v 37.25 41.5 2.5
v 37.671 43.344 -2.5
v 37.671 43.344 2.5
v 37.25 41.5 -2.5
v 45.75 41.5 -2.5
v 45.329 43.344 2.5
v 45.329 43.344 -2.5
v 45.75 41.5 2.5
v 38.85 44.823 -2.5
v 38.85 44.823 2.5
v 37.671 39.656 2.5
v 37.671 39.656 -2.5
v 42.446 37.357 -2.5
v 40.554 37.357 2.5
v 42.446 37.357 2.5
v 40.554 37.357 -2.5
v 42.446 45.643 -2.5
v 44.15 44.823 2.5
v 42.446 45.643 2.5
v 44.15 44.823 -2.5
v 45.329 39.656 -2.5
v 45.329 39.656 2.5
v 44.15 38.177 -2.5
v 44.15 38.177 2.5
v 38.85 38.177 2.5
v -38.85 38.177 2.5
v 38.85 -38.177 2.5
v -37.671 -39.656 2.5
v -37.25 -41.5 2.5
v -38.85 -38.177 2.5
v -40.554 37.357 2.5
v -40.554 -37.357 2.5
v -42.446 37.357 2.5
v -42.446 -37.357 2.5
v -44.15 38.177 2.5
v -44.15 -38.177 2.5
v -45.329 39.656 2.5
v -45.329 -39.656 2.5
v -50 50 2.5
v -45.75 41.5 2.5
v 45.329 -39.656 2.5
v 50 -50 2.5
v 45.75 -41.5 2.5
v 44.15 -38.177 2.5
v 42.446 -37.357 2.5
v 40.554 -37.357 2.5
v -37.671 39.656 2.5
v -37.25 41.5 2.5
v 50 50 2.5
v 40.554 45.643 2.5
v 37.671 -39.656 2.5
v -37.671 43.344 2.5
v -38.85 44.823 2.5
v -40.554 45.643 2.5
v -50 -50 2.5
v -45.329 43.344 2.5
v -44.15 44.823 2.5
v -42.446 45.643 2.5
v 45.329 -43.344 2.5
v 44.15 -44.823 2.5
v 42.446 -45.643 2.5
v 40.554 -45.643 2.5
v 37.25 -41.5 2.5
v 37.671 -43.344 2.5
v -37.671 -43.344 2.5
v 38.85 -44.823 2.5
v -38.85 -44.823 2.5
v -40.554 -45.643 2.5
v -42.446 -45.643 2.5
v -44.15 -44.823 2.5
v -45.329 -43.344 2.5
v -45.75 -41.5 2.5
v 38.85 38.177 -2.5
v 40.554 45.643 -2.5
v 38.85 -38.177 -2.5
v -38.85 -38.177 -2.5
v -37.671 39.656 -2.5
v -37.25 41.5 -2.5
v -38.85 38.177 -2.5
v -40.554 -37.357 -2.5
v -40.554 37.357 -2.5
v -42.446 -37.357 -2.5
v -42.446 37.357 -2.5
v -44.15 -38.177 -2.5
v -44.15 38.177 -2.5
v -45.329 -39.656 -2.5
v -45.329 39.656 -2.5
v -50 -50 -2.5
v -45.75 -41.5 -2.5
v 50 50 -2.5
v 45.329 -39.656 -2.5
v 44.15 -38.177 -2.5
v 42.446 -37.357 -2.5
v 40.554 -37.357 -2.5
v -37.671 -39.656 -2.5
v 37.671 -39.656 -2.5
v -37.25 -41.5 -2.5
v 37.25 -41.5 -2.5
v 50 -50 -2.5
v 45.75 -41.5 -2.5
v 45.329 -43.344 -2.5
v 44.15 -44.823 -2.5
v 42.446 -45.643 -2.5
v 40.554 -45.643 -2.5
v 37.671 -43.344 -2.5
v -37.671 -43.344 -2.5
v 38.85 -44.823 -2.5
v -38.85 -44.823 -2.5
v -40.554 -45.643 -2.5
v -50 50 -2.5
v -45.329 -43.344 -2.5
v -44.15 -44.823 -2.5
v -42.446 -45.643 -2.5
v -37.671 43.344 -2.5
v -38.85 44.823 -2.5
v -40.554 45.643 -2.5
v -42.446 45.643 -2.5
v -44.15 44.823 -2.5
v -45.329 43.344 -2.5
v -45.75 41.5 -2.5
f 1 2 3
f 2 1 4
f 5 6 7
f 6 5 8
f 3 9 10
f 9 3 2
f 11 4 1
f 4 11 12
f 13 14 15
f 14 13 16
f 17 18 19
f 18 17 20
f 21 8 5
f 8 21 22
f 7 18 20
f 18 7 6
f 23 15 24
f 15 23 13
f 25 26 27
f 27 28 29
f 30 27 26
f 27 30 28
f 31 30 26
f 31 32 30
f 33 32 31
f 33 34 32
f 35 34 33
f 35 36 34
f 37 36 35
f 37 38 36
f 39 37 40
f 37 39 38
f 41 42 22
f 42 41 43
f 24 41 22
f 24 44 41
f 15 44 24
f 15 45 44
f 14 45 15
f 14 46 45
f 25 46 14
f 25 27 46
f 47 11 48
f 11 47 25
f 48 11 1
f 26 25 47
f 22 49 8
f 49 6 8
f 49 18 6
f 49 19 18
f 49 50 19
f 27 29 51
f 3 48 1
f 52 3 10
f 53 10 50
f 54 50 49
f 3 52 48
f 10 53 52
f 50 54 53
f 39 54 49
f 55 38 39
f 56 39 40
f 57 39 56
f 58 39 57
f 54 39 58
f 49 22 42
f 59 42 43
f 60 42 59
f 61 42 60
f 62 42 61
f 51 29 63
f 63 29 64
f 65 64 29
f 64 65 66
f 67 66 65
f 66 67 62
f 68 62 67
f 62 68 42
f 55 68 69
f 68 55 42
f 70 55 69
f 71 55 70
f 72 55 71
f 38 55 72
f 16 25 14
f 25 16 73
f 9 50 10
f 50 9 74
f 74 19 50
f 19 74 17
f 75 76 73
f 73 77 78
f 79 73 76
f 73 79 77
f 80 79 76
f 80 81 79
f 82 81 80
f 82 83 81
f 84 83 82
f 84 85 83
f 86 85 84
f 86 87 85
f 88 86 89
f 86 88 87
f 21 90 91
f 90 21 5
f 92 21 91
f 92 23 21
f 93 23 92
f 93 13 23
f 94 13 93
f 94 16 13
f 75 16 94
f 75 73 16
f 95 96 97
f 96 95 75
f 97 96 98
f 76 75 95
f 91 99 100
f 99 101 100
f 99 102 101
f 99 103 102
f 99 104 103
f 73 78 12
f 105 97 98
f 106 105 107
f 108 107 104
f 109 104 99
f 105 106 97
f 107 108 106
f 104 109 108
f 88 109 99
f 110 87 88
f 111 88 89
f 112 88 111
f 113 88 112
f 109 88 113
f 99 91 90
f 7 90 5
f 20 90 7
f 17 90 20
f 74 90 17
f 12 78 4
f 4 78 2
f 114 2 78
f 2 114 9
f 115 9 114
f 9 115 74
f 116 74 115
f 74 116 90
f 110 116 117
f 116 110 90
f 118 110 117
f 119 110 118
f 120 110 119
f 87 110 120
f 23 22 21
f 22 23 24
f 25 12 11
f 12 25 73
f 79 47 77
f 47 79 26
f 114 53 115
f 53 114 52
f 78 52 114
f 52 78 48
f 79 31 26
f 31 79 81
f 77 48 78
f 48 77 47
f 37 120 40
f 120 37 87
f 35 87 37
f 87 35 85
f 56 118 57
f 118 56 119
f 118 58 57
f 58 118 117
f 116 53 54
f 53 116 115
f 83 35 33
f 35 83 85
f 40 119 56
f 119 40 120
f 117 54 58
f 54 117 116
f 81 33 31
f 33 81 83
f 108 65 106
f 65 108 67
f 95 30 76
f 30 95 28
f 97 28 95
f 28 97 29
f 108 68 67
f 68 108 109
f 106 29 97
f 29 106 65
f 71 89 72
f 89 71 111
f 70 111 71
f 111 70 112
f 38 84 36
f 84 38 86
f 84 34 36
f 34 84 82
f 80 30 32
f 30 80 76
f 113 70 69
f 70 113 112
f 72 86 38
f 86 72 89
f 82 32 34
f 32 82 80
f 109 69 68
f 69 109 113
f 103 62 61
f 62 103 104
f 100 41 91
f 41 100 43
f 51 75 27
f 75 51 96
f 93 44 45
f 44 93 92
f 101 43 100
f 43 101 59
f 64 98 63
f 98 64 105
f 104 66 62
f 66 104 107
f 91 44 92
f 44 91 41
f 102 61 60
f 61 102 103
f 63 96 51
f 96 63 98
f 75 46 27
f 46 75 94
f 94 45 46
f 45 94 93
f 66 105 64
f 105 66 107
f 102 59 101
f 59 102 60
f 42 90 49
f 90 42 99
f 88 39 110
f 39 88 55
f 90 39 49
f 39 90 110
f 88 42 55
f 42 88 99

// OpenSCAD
// Generated by SolidPython 1.1.3 on 2024-03-13 11:53:13


difference() {
	cube(center = true, size = [100, 100, 5]);
	union() {
		translate(v = [41.5000000000, 41.5000000000]) {
			cylinder(center = true, h = 5, r = 4.2500000000);
		}
		translate(v = [-41.5000000000, 41.5000000000]) {
			cylinder(center = true, h = 5, r = 4.2500000000);
		}
		translate(v = [-41.5000000000, -41.5000000000]) {
			cylinder(center = true, h = 5, r = 4.2500000000);
		}
		translate(v = [41.5000000000, -41.5000000000]) {
			cylinder(center = true, h = 5, r = 4.2500000000);
		}
	}
}
/***********************************************
*********      SolidPython code:      **********
************************************************
 
import solid
import numpy as np
import numbers
import pudb
from solid.utils import *
import viewscad
import subprocess
import os
import os.path as osp
import math
import sys

chamfer_extrude=solid.import_scad("./chamfer_extrude.scad")
chamfer_extrude=chamfer_extrude.chamfer_extrude
r = viewscad.Renderer(width=800, height=800)

def debug(model,f_name,path="/home/ts/code/projects/mfd/designs/debug"):
    solid.scad_render_to_file(model,osp.join(path,f_name)+".scad")
#generate position list of wells using offset from center
wells_pos_from_center_4 = lambda offset: [[-offset,offset],
                                        [offset, offset],
                                        [-offset, -offset],
                                        [offset, -offset]]
wells_pos_from_center_2 = lambda offset: [[offset,0],
                                        [-offset,0]]

def make_well(dims,shape=None,height=None,dxf=False):
    def circle_cylinder():
        if dxf or (height is None):
            well = solid.circle(r=dims, segments=64)
        else:
            well = solid.cylinder(r=dims, h=height, segments=64, center = True)
        return well
    if dims is None:
        sys.exit("radius needs to be a number")
    if isinstance(dims, numbers.Number):
        well =circle_cylinder()
    elif len(dims)==1:
        if isinstance(dims[1], numbers.Number):
            well =circle_cylinder()
        else:
            sys.exit("radius needs to be a number")
    elif len(dims)==2:
        well = solid.square(dims,center = True)
    elif len(dims)==3:
        well = solid.cube(dims, center = True)
    return well

def wells_top_bottom(center_gap,device_dims=None,shape=None,height=None, positions = None, dxf = False,well_shape=None):
    if well_shape == None:
        well_shape = make_well(device_dims,shape=shape,height=height,dxf=dxf)
    wells = []
    if positions is None:
        offset = radius+radius/2.0
        positions = wells_pos_from_center_2(offset)
    if dxf or (height is None):
        height = 0
    for position in positions:
        if dxf:
            wells.append(solid.translate([position[0],position[1]])(well_shape))
        else:
            wells.append(solid.translate([position[0],position[1],height/2.0])(well_shape))
    return  union()(*wells)

#place wells in four corners 
def four_corner(radius,height=None, positions = None, dxf = False):
    #if well pos not specified set
    #to equally spaced by half radius
    if positions is None:
        offset = radius+radius/2.0
        positions = wells_pos_from_center_4(offset)
    if dxf or (height is None):
        height = 0
    #make wells at positions with specified radius and height
    wells = []
    for position in positions:
        #make circle if making dxf
        if dxf:
            well_shape = solid.circle(r=radius, segments=64)
            well_shape = solid.translate([position[0],position[1]])(well_shape)
        #if stl make cylinder
        else:
            well_shape = solid.cylinder(r=radius, h=height, segments=64, center = True)
            well_shape = solid.translate([position[0],position[1],height/2.0])(well_shape)
        wells.append(well_shape)
    return  union()(*wells)

#generate channels 
def make_channels(length,width,height=0,num_chans=1,max_chans=None,spacing=None, dxf = False,
                  rotate_channels=False):
    if dxf or (height is None):
        height = 0
    #if channel gap not defined, is equal to
    if spacing is None: spacing = width
    #calculate number of channels if fitting max num within given width
    if not max_chans is None:
        import math
        num_chans = math.floor((max_chans-spacing)/(width+spacing))
    #get total width of channel section  
    total_width = (width*num_chans)+(spacing*(num_chans-1))

    #make template channel
    #if rotate_channels: width, length = length, width
    if dxf:
        channel_t = solid.square([length,width],center = True)
    else:
        channel_t = solid.cube([length,width,height], center = True)

    #if number channels is even, offset the first channel to center its gap
    if num_chans % 2 == 0: centering = -(width/2.0+spacing/2.0)
    else: centering = 0
    #move template channel up to align bottom at z = 0 
    #and offset center if necessary
    if dxf:
        channel_t = solid.translate([0,centering])(channel_t)
    else:
        channel_t = solid.translate([0,centering,height/2.0])(channel_t)

    #if rotate_channels: length,width = width,length
    #start making the channels
    channels = []
    for i in range(num_chans):
        #if i=0 there is no translation
        #if i=1, we make the first channel adjacent to second
        direction = i

        #if i>=1, we add channels alternating left and right
        if i >= 1:
            direction = -(i/2.0)
            if i % 2 == 1: direction = (-direction)+0.5
                
        #make channel at right position and add it to channel list
        translation_coords = [0,direction*(width+spacing)]
        #if rotate_channels: translation_coords = [direction*(width+spacing),0]
        if dxf:
            channel = solid.translate(translation_coords)(channel_t)
        else:
            channel = solid.translate([*translation_coords,0])(channel_t)
        channels.append(channel)
    
    #group all channels as one object
    channels = union()(*channels)
    #compute the x,y,z dimensions in order to pass as arguments 
    #for construction of other parts of device (such as the chambers)
    measurements = {'x':(length/2.0,-length/2.0),
                    'y':(total_width/2.0,-total_width/2.0)}
    if not dxf:
        measurements['z'] = (height,0)
    if rotate_channels:
        channels = solid.rotate(90)(channels)
        measurements['x'],measurements['y']=measurements['y'],measurements['x']
    return channels,measurements

def make_chambers(msrs,height=None,extra=0,len_until=None,width=None, dxf = False):
    #computes x,y,z length
    total = lambda x : abs(x[0]) + abs(x[1])
    
    #if specific height if specified
    #otherwise use same height as channels
    if dxf:
        pass
    elif not height is None:
        msrs['z'] = (height,0)
    else:
        msrs['z'] = (0,0)
        
    #make copy of measurements from channels to modify chamber dimensions 
    #and add length to chambers as specified
    chamber_dims = msrs.copy()
    #calculate length of chamber to reach specified offset
    if not len_until is None:
        chamber_len = len_until-(msrs['x'][0])
    #or add specified length to channel length (if not specified, adds 0)
    else:
        chamber_len = msrs['x'][0]+extra
    #set the chamber length based 
    chamber_dims['x'] = (chamber_len/2.0,-(chamber_len/2.0))
    #compute final dimensions of chamber
    if not width is None:
        chamber_dims['y'] = (width/2.0,-width/2.0)
    chamber_dims = [total(size) for size in chamber_dims.values()]
        
    #calculate chamber translation offset to place adjacent to channels
    chamber_trslt = msrs['x'][0]+(chamber_len/2.0)
    #compute chamber translation coordinates to align with channels
    #x = 1 moves chamber above channels
    #x = -1 moves chamber below channels
    if dxf:
        trslt = lambda x : [x*(chamber_trslt),0]
    else:
        trslt = lambda x : [x*(chamber_trslt),0,msrs['z'][0]/2.0]
    
    #function to make chamber at top or at bottom 
    if dxf:
        move = lambda x : solid.translate(trslt(x))(solid.square(chamber_dims, center = True) )
    else:
        move = lambda x : solid.translate(trslt(x))(solid.cube(chamber_dims,center = True))
    #make top and bottom chambers and return them as grouped
    top = move(1)
    bottom = move(-1)
    #chambers=solid.rotate(90)(solid.union()(top,bottom))
    chambers=(solid.union()(top,bottom))

    return chambers

#create alignment features 
def alignment_features(unit,dims,grid_size, mask_size = None, alignment = "hollow", units_from_center = (2.5,2.5), corner_len=None):
    width = grid_size[0]*dims[0]
    length = grid_size[1]*dims[1]
    if mask_size is None and corner_len is None:
        corner_len = (dims[0] + dims[1]) /2 / 8
    corner = lambda thickness_div : solid.union()( solid.square([corner_len,corner_len/thickness_div],center=False), solid.square([corner_len/thickness_div,corner_len],center=False) )
    
    def make_full(thickness_div):
        thickness = corner_len/thickness_div
        tr = solid.translate([0, 0, 0 ])(solid.rotate(180)(corner(thickness_div)))
        tr = solid.translate([thickness/2,thickness/2,0])(tr)
        bl = solid.translate([0, 0, 0 ])(solid.rotate(0)(corner(thickness_div)))
        bl = solid.translate([-thickness/2,-thickness/2,0])(bl)
        return solid.union()(tr,bl)
    
    def make_hollow(thickness_div):
        thickness = corner_len/(thickness_div/2)
        inner = make_full(thickness_div)
        outer = make_full(thickness_div/2)
        hollow = outer - inner 
        return hollow
    
    center = (width /2 , length/2)
    mask_pos = lambda x,y : (center[0] + x*(float(units_from_center[0])*dims[0]), center[1] + y*(float(units_from_center[1])*dims[1]))
    positions = []
    positions.append(mask_pos(1,0))
    positions.append(mask_pos(0,1))
    positions.append(mask_pos(-1,0))
    positions.append(mask_pos(0,-1))
    make_mask = lambda mtype : make_hollow(8) if mtype == "hollow" else make_full(8)
    masks = [ solid.translate([*position,0])(make_mask(alignment)) for position in positions]
    
    solid.scad_render_to_file(solid.union()(*masks),"./designs/open_chamber/masks.scad")
    #return unit - solid.union()(*masks)
    return solid.union()(*masks,unit)

def create_outline(thickness, array, dims, grid_size,):
    width = grid_size[0]*dims[0] + thickness *2
    length = grid_size[1]*dims[1] + thickness *2
    outer = solid.translate([-thickness, -thickness,0])(solid.square([width, length]))
    return outer-array

def create_wall(wall_thickness, outline_thickness, dims, grid_size, wall_height = 2000, dxf = False):
    inner_width = grid_size[0]*dims[0] + outline_thickness *2
    inner_length = grid_size[1]*dims[1] + outline_thickness *2
    outer_width = inner_width + wall_thickness * 2
    outer_length = inner_length + wall_thickness * 2
    outer_pos_x = -outline_thickness-wall_thickness
    outer_pos_y = -outline_thickness-wall_thickness
    inner_pos_x = -outline_thickness
    inner_pos_y = -outline_thickness
    if dxf:
        inner_wall = solid.translate([inner_pos_x,
                                      inner_pos_y,
                                      0])(solid.square([inner_width, inner_length]))
        outer_wall = solid.translate([outer_pos_x,
                                      outer_pos_y,
                                      0])(solid.square([outer_width, outer_length]))

        return outer_wall-inner_wall
    else:
        inner_wall = solid.translate([inner_pos_x,
                                      inner_pos_y,
                                      0])(solid.cube([inner_width, inner_length,wall_height]))
        outer_wall = solid.translate([outer_pos_x,
                                      outer_pos_y,
                                      0])(solid.cube([outer_width, outer_length,wall_height]))

        return outer_wall-inner_wall, {'wall_height': wall_height,
                                       'wall_thickness': wall_thickness,
                                       'inner_width':inner_width,
                                       'inner_length': inner_length,
                                       'outer_width': outer_width,
                                       'outer_length': outer_length,
                                       'outer_pos_x' : outer_pos_x,
                                       'outer_pos_y' : outer_pos_y,
                                       'inner_pos_x' : inner_pos_x,
                                       'inner_pos_y' : inner_pos_y}

def create_thicker_wall(wall_thickness, outer_wall_offset, wall_dims, dims, grid_size, height_start = .2, height_end=2, dxf = False):
    addon_wall,thicker_wall_dims = create_wall(wall_thickness, outer_wall_offset, dims, grid_size, wall_height=height_end-height_start, dxf = False)
    addon_wall = solid.translate([0,0,height_start])(addon_wall)

    thicker_wall_dims['wall_height'] = height_end
    thicker_wall_dims['wall_thickness'] = wall_dims['wall_thickness'] + wall_thickness
    return addon_wall, thicker_wall_dims
 
def add_lock_to_wall(wall,wall_dims,y_offset = 0,cut_ratio=0.7,L_length=3, gap_ratio=0.05, axis="x",width_ratio=1/2):
    # Makes L shape
    def make_L(max_length,length_thickness,max_width,width_thickness,height,y_offset):
        length = solid.cube([max_length,length_thickness,height])
        width = solid.cube([width_thickness,max_width,height])
        width = solid.translate([max_length-(width_thickness),0,0])(width)
        L = solid.union()(width,length)
        debug(L,"L")
        if axis == "x":
            L = solid.rotate(-90)(L)
            L = solid.translate([0,max_length,0])(L)
        else:
            L = solid.rotate(-180)(L)
            L = solid.translate([max_length,max_width,0])(L)
        return solid.translate([0,0,y_offset])(L)
    
    lock_length = L_length
    lock_width = wall_dims['wall_thickness']*width_ratio
    lock_length_thickness = lock_width/2
    lock_width_thickness = lock_width/2
    L_lock = make_L(lock_length,lock_length_thickness,lock_width,lock_width_thickness, wall_dims['wall_height']-y_offset, y_offset)
    
    margin_space = lock_length - lock_length*(1-gap_ratio)
    key_length = lock_length-margin_space
    key_length_thickness = lock_length_thickness-(margin_space*2)
    key_width = lock_width-(margin_space*2)
    key_width_thickness = lock_width_thickness-(margin_space*2)
    L_key = make_L(key_length,key_length_thickness,key_width,key_width_thickness, wall_dims['wall_height']-y_offset, y_offset)
    L_key = solid.translate([margin_space,margin_space,0])(L_key)
    L = solid.union()(L_lock,L_key)
    debug(L,"L")
    
    #Make cube to be used as negative to split frame in a half
    #Can choose if making left or right negative, specify ratio of split
    def make_negative(right,cut_ratio):
        if axis == "x":
            if right:
                length = wall_dims['outer_length']*(1-cut_ratio)
                pos_x = wall_dims['outer_pos_x']+(wall_dims['outer_length']*cut_ratio)
            else:
                length = wall_dims['outer_length']*(cut_ratio)
                pos_x = wall_dims['outer_pos_x'] 
            negative = solid.cube([wall_dims['outer_width'],length, wall_dims['wall_height']])
            negative = solid.translate([wall_dims['outer_pos_y'],pos_x,0])(negative)
        else:
            if right:
                length = wall_dims['outer_width']*(1-cut_ratio)
                pos_x = wall_dims['outer_pos_y']+(wall_dims['outer_width']*cut_ratio)
            else:
                length = wall_dims['outer_width']*(cut_ratio)
                pos_x = wall_dims['outer_pos_y'] 
            negative = solid.cube([length,wall_dims['outer_length'], wall_dims['wall_height']])
            negative = solid.translate([pos_x,wall_dims['outer_pos_x'],0])(negative)
        return negative, pos_x, length 
                      
    #Make negatives
    negative_right, right_half_pos_x, right_half_length = make_negative(True,cut_ratio)
    negative_left, left_half_pos_x, right_half_length = make_negative(False,cut_ratio)
    #Make halves
    left_half = solid.difference()(wall,negative_right)
    right_half = solid.difference()(wall,negative_left)
    def place_L(L, L_length,L_width):
        #Place L on top wall       
        offset_to_center = (wall_dims['wall_thickness']-L_width)/2
        if axis == "x":
            y_pos_top = (wall_dims['outer_pos_y'] +
                    wall_dims['outer_width'] - 
                    L_width - offset_to_center)
            top_L = solid.translate([y_pos_top,
                                     right_half_pos_x-(L_length),
                                     0])(L)
            #Place L on bottom wall       
            y_pos_bottom = wall_dims['outer_pos_y']+offset_to_center
            bottom_L = solid.translate([y_pos_bottom,
                                        right_half_pos_x-L_length,
                                        0])(L)
        else:
            y_pos_top = (wall_dims['outer_pos_x'] +
                    wall_dims['outer_length'] -
                    (L_width+offset_to_center))
            top_L = solid.translate([right_half_pos_x-L_length,
                                     y_pos_top,
                                     0])(L)
            #Place L on bottom wall       
            y_pos_bottom = wall_dims['outer_pos_y']+offset_to_center
            bottom_L = solid.translate([right_half_pos_x-L_length,
                                        y_pos_bottom,
                                        0])(L)
        return bottom_L, top_L
    #Make complimentary L pieces through union and differences
    #Make Lock
    bottom_L_lock, top_L_lock = place_L(L_lock,L_length,lock_width)
    left_half = solid.difference()(left_half,bottom_L_lock)
    left_half = solid.difference()(left_half,top_L_lock)
    #Make Key
    bottom_L_key, top_L_key = place_L(L_key,L_length,lock_width)
    right_half = solid.union()(right_half,bottom_L_key)
    right_half = solid.union()(right_half,top_L_key)
    return left_half, right_half


#build a row x col grid of containment units
def make_unit_array(unit,dims,grid_size, dxf = False, alignment = None, mask_size = None,
                    units_from_center = None,alignment_offset=None, alignment_mark_size=1):
    units = []
    for col in range(grid_size[1]):
        for row in range(grid_size[0]):
            if dxf:
                units.append(solid.translate([row*dims[0],col*dims[1]])(unit))
            else:
                units.append(solid.translate([row*dims[0],col*dims[1],dims[2]/2.0])(unit))
    array = solid.union()(*units)
    if (not alignment is None) and dxf:
        if not alignment_offset is None:
            array = solid.translate([alignment_offset[0],alignment_offset[1]])(array)
        array = alignment_features(array,dims, grid_size, alignment = alignment, mask_size = None, units_from_center = units_from_center,corner_len=alignment_mark_size)
        if not alignment_offset is None:
            array = solid.translate([-alignment_offset[0],-alignment_offset[1]])(array)
    return array


def make_taylor(wells_pos = wells_pos_from_center_4(2.25), well_rad = 1.5 ,
                well_height = 2, chan_w = 0.01, chan_l = 1, chan_h = 0.010 ,
                chan_gap = 0.040, max_chans = None,num_chans=100, chamber_height  = 0.100,
                columns = 1, rows = 1, chamber_len_until=2.25, add_channels = True, add_wells = True, 
                add_chambers = True, save_path = "./", alignment = None, units_from_center = 2,
                mask_size = None, render_stl = False, outline_thickness = 0.050, dxf = True,
                wall_height = 15, wall_thickness = 0.95, casing_x=9, casing_y=9, casing_z=0,rotate_units=0):

    dims = [casing_x, casing_y, casing_z]
    wells = four_corner(well_rad,well_height, dxf = dxf, positions = wells_pos)
    debug(wells,"wells")
    channels, msrs = make_channels(chan_l,chan_w,chan_h,dxf=dxf, spacing = chan_gap, max_chans=max_chans,num_chans=num_chans)
    debug(channels,"channels")
    chambers = make_chambers(msrs,dxf = dxf, height=chamber_height,len_until=chamber_len_until)
    debug(chambers,"chambers")

    #add together and render
    device_parts = []
    if add_channels:
        device_parts.append(channels)
    if add_wells:
        device_parts.append(wells)
    if add_chambers:
        device_parts.append(chambers)
    device=union()(*device_parts)
    device = rotate(rotate_units)(device)

    device=solid.translate([dims[0]/2.0,dims[1]/2.0,0])(device)
    channels = rotate(rotate_units)(channels)
    channels=solid.translate([dims[0]/2,dims[1]/2,0])(channels)
    chambers_wells = union()(wells,chambers)
    chambers_wells = rotate(rotate_units)(chambers_wells)
    chambers_wells=solid.translate([dims[0]/2,dims[1]/2,0])(chambers_wells)

    file_name = str(rows)+'x'+str(columns)+'_units_'
    grid_size = [rows,columns]

    if alignment:
        alignment="full"
    device = make_unit_array(device,dims,grid_size, dxf=dxf, alignment = alignment,
                                 units_from_center = units_from_center)
    channels = make_unit_array(channels,dims,grid_size, dxf=dxf, alignment = alignment,
                                 units_from_center = units_from_center)
    if alignment=="full":
        alignment="hollow"

    chambers_wells = make_unit_array(chambers_wells,dims,grid_size, dxf=dxf, alignment = alignment,
                                 units_from_center =units_from_center)

    def save_model(model,prefix):
        model_fname = os.path.abspath(save_path+prefix+"_"+file_name+".scad")
        solid.scad_render_to_file(model,model_fname)
        return model_fname

    wells_fname = save_model(wells,"wells")
    channels_fname = save_model(channels,"channels")
    device_fname = save_model(device,"device")
    chambers_wells_fname = save_model(chambers_wells,"chambers_wells")
    return (chambers_wells,chambers_wells_fname), (channels,channels_fname), (device,device_fname)

def make_device(design='open',rows=8,columns=6,wells_pos = 4.5,well_offset=3.2, well_rad=3.2,well_height=0.1,
                chan_l=1,chan_w=0.01,chan_h=0.01,chan_gap=0.015,num_chans=101,dxf=True,save_path="./designs/open_chamber/",
                casing_x=9.0,casing_y=18.0,casing_z=0,rotate_units=90,units_from_center=(3,1),chamber_len_until=4.5,
                chamber_width=None,alignment=True, add_wells=True, add_channels=True,add_chambers=True,well_shape=None):

    dims = [casing_x, casing_y, casing_z]
    if design == "open":
        wells_pos=wells_pos_from_center_2(wells_pos)
        wells = wells_top_bottom(well_offset*2,device_dims=well_rad,height=well_height, dxf = dxf, positions = wells_pos,well_shape=well_shape)
    elif design == "closed":
        wells_pos=wells_pos_from_center_4(wells_pos)
        debug(wells,"wells")
        wells = four_corner(well_offset,well_height,device_dims=well_rad, dxf = dxf, positions = wells_pos)
    else:
        print(design+" is not a valid design.\n Choose valid design: 'open' or 'closed'")
        exit()
    wells = rotate(rotate_units)(wells)
    wells=solid.translate([dims[0]/2,dims[1]/2,0])(wells)
    debug(wells,"wells")

    channels, msrs = make_channels(chan_l,chan_w,chan_h,dxf=dxf, spacing = chan_gap, num_chans=num_chans,rotate_channels=False)
    channels = rotate(rotate_units)(channels)
    channels=solid.translate([dims[0]/2,dims[1]/2,0])(channels)

    chambers=make_chambers(msrs,height=None,extra=0,len_until=chamber_len_until, width=chamber_width,dxf = dxf)
    chambers = rotate(rotate_units)(chambers)
    chambers=solid.translate([dims[0]/2,dims[1]/2,0])(chambers)

    device_parts = []
    if add_channels:
        device_parts.append(channels)
    if add_wells:
        device_parts.append(wells)
    if add_chambers:
        device_parts.append(chambers)
    device = union()(*device_parts)
    #device = rotate(rotate_units)(device)
    #device=solid.translate([dims[0]/2.0,dims[1]/2.0,0])(device)

    chambers_wells = []
    if add_chambers:
        chambers_wells.append(chambers)
    if add_wells:
        chambers_wells.append(wells)
    chambers_wells = union()(*chambers_wells)
    #chambers_wells = union()(wells,chambers)
    #chambers_wells = rotate(rotate_units)(chambers_wells)
    #chambers_wells=solid.translate([dims[0]/2,dims[1]/2,0])(chambers_wells)

    file_name = str(rows)+'x'+str(columns)+'_units_'

    grid_size = [rows,columns]
    if alignment:
        alignment="full"
    device = make_unit_array(device,dims,grid_size, dxf=dxf, alignment = alignment,
                                 units_from_center = units_from_center)
    channels = make_unit_array(channels,dims,grid_size, dxf=dxf, alignment = alignment,
                                 units_from_center = units_from_center)
    if alignment=="full":
        alignment="hollow"

    chambers_wells = make_unit_array(chambers_wells,dims,grid_size, dxf=dxf, alignment = alignment,
                                 units_from_center =units_from_center)

    def save_model(model,prefix):
        model_fname = os.path.abspath(save_path+prefix+"_"+file_name+".scad")
        solid.scad_render_to_file(model,model_fname)
        return model_fname

    wells_fname = save_model(wells,"wells")
    channels_fname = save_model(channels,"channels")
    device_fname = save_model(device,"device")
    chambers_wells_fname = save_model(chambers_wells,"chambers_wells")
    return (chambers_wells,chambers_wells_fname), (channels,channels_fname), (device,device_fname)


def make_open_chamber(rows=8,columns=6,wells_pos = wells_pos_from_center_2(4.5), well_rad=3.2,well_height=0.1,
                      chan_l=1,chan_w=0.01,chan_h=0.01,chan_gap=0.015,num_chans=101,dxf=True,save_path="./designs/open_chamber/",
                      casing_x=9.0,casing_y=18.0,casing_z=0,rotate_units=90,units_from_center=(3,1),chamber_len_until=4.5,
                      chamber_width=None,alignment=True, add_wells=True, add_channels=True,add_chambers=True,well_shape=None):

    dims = [casing_x, casing_y, casing_z]
    wells = wells_top_bottom(well_rad,height=well_height, dxf = dxf, positions = wells_pos, well_shape=well_shape)
    channels, msrs = make_channels(chan_l,chan_w,chan_h,dxf=dxf, spacing = chan_gap, num_chans=num_chans,rotate_channels=False)
    chambers=make_chambers(msrs,height=None,extra=0,len_until=chamber_len_until, width=chamber_width,dxf = dxf)
    debug(chambers,"chambers")
    device_parts = []
    if add_channels:
        device_parts.append(channels)
    if add_wells:
        device_parts.append(wells)
    if add_chambers:
        device_parts.append(chambers)
    device = union()(*device_parts)
    device = rotate(rotate_units)(device)
    device=solid.translate([dims[0]/2.0,dims[1]/2.0,0])(device)
    channels = rotate(rotate_units)(channels)
    channels=solid.translate([dims[0]/2,dims[1]/2,0])(channels)
    chambers_wells = union()(wells,chambers)
    chambers_wells = rotate(rotate_units)(chambers_wells)
    chambers_wells=solid.translate([dims[0]/2,dims[1]/2,0])(chambers_wells)

    file_name = str(rows)+'x'+str(columns)+'_units_'

    grid_size = [rows,columns]
    if alignment:
        alignment="full"
    device = make_unit_array(device,dims,grid_size, dxf=dxf, alignment = alignment,
                                 units_from_center = units_from_center)
    channels = make_unit_array(channels,dims,grid_size, dxf=dxf, alignment = alignment,
                                 units_from_center = units_from_center)
    if alignment=="full":
        alignment="hollow"

    chambers_wells = make_unit_array(chambers_wells,dims,grid_size, dxf=dxf, alignment = alignment,
                                 units_from_center =units_from_center)

    def save_model(model,prefix):
        model_fname = os.path.abspath(save_path+prefix+"_"+file_name+".scad")
        solid.scad_render_to_file(model,model_fname)
        return model_fname

    wells_fname = save_model(wells,"wells")
    channels_fname = save_model(channels,"channels")
    device_fname = save_model(device,"device")
    chambers_wells_fname = save_model(chambers_wells,"chambers_wells")
    return (chambers_wells,chambers_wells_fname), (channels,channels_fname), (device,device_fname)

def to_dxf(scad_path):
    dxf_path = scad_path.replace(".scad",".dxf")
    subprocess.call(["openscad", "-o", dxf_path, scad_path])
    import ezdxf
    temp_dxf = ezdxf.readfile(dxf_path)
    temp_dxf.saveas(dxf_path)

#def make_walls(diameter,thickness,grid_size,dims,height=20,segments=256,make_inner=True):
#    wafer_wall_out = solid.cylinder(r=diameter/2,h=height, segments=segments)
#    wafer_wall_in = solid.cylinder(r=(diameter/2-thickness),h=height, segments=segments)
#    wafer_wall = solid.difference()(wafer_wall_out,wafer_wall_in)
#    wafer_wall = solid.translate([grid_size[1]*dims[1]/2.0,grid_size[0]*dims[0]/2.0])(wafer_wall)
#
#    vertical_wall_length = grid_size[1]*dims[1]
#    horizontal_wall_length = grid_size[0]*dims[0]
#    vertical_wall = solid.cube([vertical_wall_length,thickness,height],center = True)
#    vertical_wall = solid.translate([vertical_wall_length/2,0,height/2])(vertical_wall)
#    horizontal_wall = solid.cube([thickness,horizontal_wall_length,height],center = True)
#    horizontal_wall = solid.translate([0,vertical_wall_length/2,height/2])(horizontal_wall)
#    walls = []
#    walls.append(horizontal_wall)
#    walls.append(vertical_wall)
#    for col in range(grid_size[1]):
#        if col == grid_size[1]-1: 
#            walls.append(solid.translate([0,(col+1)*dims[1]])(vertical_wall))
#        elif col > 0 and col < grid_size[1]-1 and make_inner==True:
#            walls.append(solid.translate([0,(col+1)*dims[1]])(vertical_wall))
#    for row in range(grid_size[0]):
#        if row == grid_size[0]-1: 
#            walls.append(solid.translate([(row+1)*dims[0],0])(horizontal_wall))
#        elif row > 0 and row < grid_size[0]-1 and make_inner==True:
#            walls.append(solid.translate([(row+1)*dims[0],0])(horizontal_wall))
#    walls = union()(*walls)
#    wafer_walls = union()(walls,wafer_wall)
#    return walls,wafer_wall,wafer_walls

def make_walls(diameter,thickness,grid_size,dims,height=20,segments=256,make_inner=True,padx=0,pady=0):
    wafer_wall_out = solid.cylinder(r=diameter/2,h=height, segments=segments)
    wafer_wall_in = solid.cylinder(r=(diameter/2-thickness),h=height, segments=segments)
    wafer_wall = solid.difference()(wafer_wall_out,wafer_wall_in)
    wafer_wall = solid.translate([grid_size[1]*dims[1]/2.0,grid_size[0]*dims[0]/2.0])(wafer_wall)

    vertical_wall_length = grid_size[0]*dims[0]+padx
    horizontal_wall_length = grid_size[1]*dims[1]+pady
    vertical_wall = solid.cube([vertical_wall_length,thickness,height],center = True)
    vertical_wall = solid.translate([vertical_wall_length/2-pady/2,-padx/2,height/2])(vertical_wall)
    horizontal_wall = solid.cube([thickness,horizontal_wall_length,height],center = True)
    horizontal_wall = solid.translate([-pady/2,horizontal_wall_length/2-padx/2,height/2])(horizontal_wall)
    walls = []
    walls.append(horizontal_wall)
    walls.append(vertical_wall)
    for col in range(grid_size[1]):
        if col == grid_size[1]-1: 
            walls.append(solid.translate([0,(col+1)*dims[1]+pady])(vertical_wall))
        elif col > 0 and col < grid_size[1]-1 and make_inner==True:
            walls.append(solid.translate([0,(col+1)*dims[1]])(vertical_wall))
    for row in range(grid_size[0]):
        if row == grid_size[0]-1: 
            walls.append(solid.translate([(row+1)*dims[0]+padx,0])(horizontal_wall))
        elif row > 0 and row < grid_size[0]-1 and make_inner==True:
            walls.append(solid.translate([(row+1)*dims[0],0])(horizontal_wall))
    walls = union()(*walls)
    wafer_walls = union()(walls,wafer_wall)
    return walls,wafer_wall,wafer_walls

def save_model(model,base_path,base_name,dxf=True):
    if not os.path.exists(base_path):
        os.makedirs(base_path)
    dxf_path=osp.join(base_path,base_name+".scad")
    solid.scad_render_to_file(model,osp.join(dxf_path))
    if dxf:
        to_dxf(dxf_path)

def make_wafer(diameter,flat_len,thickness):
    wafer = solid.cylinder(r1=diameter/2,r2=diameter/2,h=thickness,segments=512,)()
    x_start_flat=(flat_len/2)
    y_start_flat = math.sqrt(((diameter/2)**2) - (x_start_flat**2) )
    height_delete_flat=diameter/2-y_start_flat
    flat_delete = solid.cube([flat_len,height_delete_flat,thickness],center=False)()
    flat_delete = solid.translate([-flat_len/2,y_start_flat,0])(flat_delete)
    wafer = solid.difference()(wafer,flat_delete)
    wafer = solid.rotate(90)(wafer)
    return wafer

def add_wafer_to_mask(wafer_size,flat_len,mask,grid_size,dims,wafer_line_thickness=0.1,outer_mask_thickness=5,alignment_offset=None):
    def make_wafer_mask(wafer_size,flat_len):
        wafer_mask = make_wafer(wafer_size,flat_len,1)
        wafer_mask = solid.projection()(wafer_mask)
        wafer_mask = solid.translate([grid_size[0]*dims[0]/2.0,grid_size[1]*dims[1]/2.0])(wafer_mask)
        if not alignment_offset is None:
            wafer_mask = solid.translate([-alignment_offset[0],-alignment_offset[1]])(wafer_mask)
        return wafer_mask

    inner_wafer_line_mask = make_wafer_mask(wafer_size-wafer_line_thickness/2,flat_len)
    outer_wafer_line_mask = make_wafer_mask(wafer_size+wafer_line_thickness/2,flat_len)
    outer_wafer_mask = make_wafer_mask(wafer_size+outer_mask_thickness,flat_len)
    outer_wafer_mask = solid.difference()(outer_wafer_mask,outer_wafer_line_mask)
    wafer_mask = solid.union()(outer_wafer_mask,inner_wafer_line_mask)

    return solid.difference()(wafer_mask,mask)

def make_posts(post_shape,post_height):
    posts = solid.linear_extrude(height=post_height)(post_shape)
    return posts

def make_wafer_empty(diameter,flat_len,thickness,margin,notch_len=20,notch_height=5,oversize=1.01):
    diameter*=oversize
    flat_len*=oversize
    wafer = make_wafer(diameter,flat_len,thickness)
    holder = solid.cylinder(r1=diameter/2+margin,r2=diameter/2+margin,h=thickness,segments=512)()
    holder = solid.difference()(holder,wafer)

    x_start_flat=(flat_len/2)
    y_start_flat = math.sqrt(((diameter/2)**2) - (x_start_flat**2) )
    height_delete_flat=diameter/2-y_start_flat
    notch = solid.cube([notch_len,notch_height,thickness],center=False)()
    notch = solid.translate([-notch_len/2,y_start_flat,0])(notch)
    notch = solid.rotate(90)(notch)
    return solid.difference()(holder,notch)

def wafer_print_calibration(diameter,thickness,height,z_offset):
    circles = []
    radii = []
    radii.append(diameter/2.0*0.8)
    radii.append(diameter/2.0*0.6)
    radii.append(diameter/2.0*0.4)
    radii.append(diameter/2.0*0.2)
    for radius in radii:
        inner = solid.cylinder(r1=radius-(thickness/2.0),r2=radius-(thickness/2.0),h=thickness,segments=512,)()
        outer = solid.cylinder(r1=radius+(thickness/2.0),r2=radius+(thickness/2.0),h=thickness,segments=512,)()
        diff = solid.difference()(outer,inner)
        circles.append(diff)
    circles = solid.union()(*circles)
    circles = solid.translate([0,0,z_offset])(circles)
    return circles

def make_rack(wells,dims,grid_size,alignment_offset,rack_x,rack_y,rack_thickness,bolt_width,add_bolts=True):

    #get X and Y dimensions of gride of pipette tips
    X_len = dims[0]*grid_size[0]
    Y_len = dims[1]*grid_size[1]
    #make rack
    rack = solid.cube([rack_x,rack_y,rack_thickness],center=True)

    if add_bolts:
    #add bolt holes
        bolt_hole=solid.cylinder(r=bolt_width/2,h=rack_thickness,center=True)()
        bolt_holes = []
        bolt_holes.append(solid.translate([rack_x/2-1.5*bolt_width,rack_y/2-1.5*bolt_width])(bolt_hole))
        bolt_holes.append(solid.translate([-rack_x/2+1.5*bolt_width,rack_y/2-1.5*bolt_width])(bolt_hole))
        bolt_holes.append(solid.translate([-rack_x/2+1.5*bolt_width,-rack_y/2+1.5*bolt_width])(bolt_hole))
        bolt_holes.append(solid.translate([rack_x/2-1.5*bolt_width,-rack_y/2+1.5*bolt_width])(bolt_hole))
        bolt_holes = solid.union()(*bolt_holes)
        rack=solid.difference()(rack,bolt_holes)
    rack_support = rack

    #center rack with pipette holes
    rack = solid.translate([0,0,rack_thickness/2])(rack)
    rack = solid.translate([X_len/2,Y_len/2])(rack)
    rack = solid.translate([-alignment_offset[0],-alignment_offset[1]])(rack)
    wells = solid.linear_extrude(height=rack_thickness)(wells)
    rack = solid.difference()(rack,wells)
    return rack, rack_support

def make_pillar(wells,dims,grid_size,alignment_offset,rack_x,rack_y,pillar_height,rack_thickness,bolt_width,add_bolts=True,taper_angle=1,bolt_position_corner=1.5):

    #get X and Y dimensions of gride of pipette tips
    X_len = dims[0]*grid_size[0]
    Y_len = dims[1]*grid_size[1]
    #make rack
    rack = solid.cube([rack_x,rack_y,rack_thickness],center=True)
    
    if add_bolts:
    #add bolt holes
        bolt_hole=solid.cylinder(r=bolt_width/2,h=rack_thickness,center=True)()
        bolt_holes = []
        bolt_holes.append(solid.translate([rack_x/2-bolt_position_corner*bolt_width,rack_y/2-bolt_position_corner*bolt_width])(bolt_hole))
        bolt_holes.append(solid.translate([-rack_x/2+bolt_position_corner*bolt_width,rack_y/2-bolt_position_corner*bolt_width])(bolt_hole))
        bolt_holes.append(solid.translate([-rack_x/2+bolt_position_corner*bolt_width,-rack_y/2+bolt_position_corner*bolt_width])(bolt_hole))
        bolt_holes.append(solid.translate([rack_x/2-bolt_position_corner*bolt_width,-rack_y/2+bolt_position_corner*bolt_width])(bolt_hole))
        bolt_holes = solid.union()(*bolt_holes)
        rack=solid.difference()(rack,bolt_holes)
    rack_support = rack

    #center rack with pipette holes
    #rack = solid.translate([0,0,-rack_thickness])(rack)
    rack = solid.translate([X_len/2,Y_len/2])(rack)
    rack = solid.translate([-alignment_offset[0],-alignment_offset[1]])(rack)
    if not taper_angle == 0:
        wells=chamfer_extrude(pillar_height,taper_angle,segments=20)(wells)
    else:
        wells = solid.linear_extrude(height=pillar_height)(wells)
    rack = solid.union()(rack,wells)
    return rack, rack_support

def deg_taper_len(height,deg):
    if not deg == 0:
        return height*math.tan(math.radians(deg))
    else:
        return 0

def make_outline(inner_dims,wall_thickness,grid_size,dims,alignment_offset):
    inner_dims=np.array(inner_dims)
    inner_outline=solid.square(inner_dims,center=True)
    outer_dims=inner_dims+wall_thickness
    outer_outline=solid.square(outer_dims,center=True)
    outline=solid.difference()(outer_outline,inner_outline)
    outline=solid.translate([grid_size[0]*dims[0]/2.0,grid_size[1]*dims[1]/2.0])(outline)
    return outline








 
 
************************************************/
